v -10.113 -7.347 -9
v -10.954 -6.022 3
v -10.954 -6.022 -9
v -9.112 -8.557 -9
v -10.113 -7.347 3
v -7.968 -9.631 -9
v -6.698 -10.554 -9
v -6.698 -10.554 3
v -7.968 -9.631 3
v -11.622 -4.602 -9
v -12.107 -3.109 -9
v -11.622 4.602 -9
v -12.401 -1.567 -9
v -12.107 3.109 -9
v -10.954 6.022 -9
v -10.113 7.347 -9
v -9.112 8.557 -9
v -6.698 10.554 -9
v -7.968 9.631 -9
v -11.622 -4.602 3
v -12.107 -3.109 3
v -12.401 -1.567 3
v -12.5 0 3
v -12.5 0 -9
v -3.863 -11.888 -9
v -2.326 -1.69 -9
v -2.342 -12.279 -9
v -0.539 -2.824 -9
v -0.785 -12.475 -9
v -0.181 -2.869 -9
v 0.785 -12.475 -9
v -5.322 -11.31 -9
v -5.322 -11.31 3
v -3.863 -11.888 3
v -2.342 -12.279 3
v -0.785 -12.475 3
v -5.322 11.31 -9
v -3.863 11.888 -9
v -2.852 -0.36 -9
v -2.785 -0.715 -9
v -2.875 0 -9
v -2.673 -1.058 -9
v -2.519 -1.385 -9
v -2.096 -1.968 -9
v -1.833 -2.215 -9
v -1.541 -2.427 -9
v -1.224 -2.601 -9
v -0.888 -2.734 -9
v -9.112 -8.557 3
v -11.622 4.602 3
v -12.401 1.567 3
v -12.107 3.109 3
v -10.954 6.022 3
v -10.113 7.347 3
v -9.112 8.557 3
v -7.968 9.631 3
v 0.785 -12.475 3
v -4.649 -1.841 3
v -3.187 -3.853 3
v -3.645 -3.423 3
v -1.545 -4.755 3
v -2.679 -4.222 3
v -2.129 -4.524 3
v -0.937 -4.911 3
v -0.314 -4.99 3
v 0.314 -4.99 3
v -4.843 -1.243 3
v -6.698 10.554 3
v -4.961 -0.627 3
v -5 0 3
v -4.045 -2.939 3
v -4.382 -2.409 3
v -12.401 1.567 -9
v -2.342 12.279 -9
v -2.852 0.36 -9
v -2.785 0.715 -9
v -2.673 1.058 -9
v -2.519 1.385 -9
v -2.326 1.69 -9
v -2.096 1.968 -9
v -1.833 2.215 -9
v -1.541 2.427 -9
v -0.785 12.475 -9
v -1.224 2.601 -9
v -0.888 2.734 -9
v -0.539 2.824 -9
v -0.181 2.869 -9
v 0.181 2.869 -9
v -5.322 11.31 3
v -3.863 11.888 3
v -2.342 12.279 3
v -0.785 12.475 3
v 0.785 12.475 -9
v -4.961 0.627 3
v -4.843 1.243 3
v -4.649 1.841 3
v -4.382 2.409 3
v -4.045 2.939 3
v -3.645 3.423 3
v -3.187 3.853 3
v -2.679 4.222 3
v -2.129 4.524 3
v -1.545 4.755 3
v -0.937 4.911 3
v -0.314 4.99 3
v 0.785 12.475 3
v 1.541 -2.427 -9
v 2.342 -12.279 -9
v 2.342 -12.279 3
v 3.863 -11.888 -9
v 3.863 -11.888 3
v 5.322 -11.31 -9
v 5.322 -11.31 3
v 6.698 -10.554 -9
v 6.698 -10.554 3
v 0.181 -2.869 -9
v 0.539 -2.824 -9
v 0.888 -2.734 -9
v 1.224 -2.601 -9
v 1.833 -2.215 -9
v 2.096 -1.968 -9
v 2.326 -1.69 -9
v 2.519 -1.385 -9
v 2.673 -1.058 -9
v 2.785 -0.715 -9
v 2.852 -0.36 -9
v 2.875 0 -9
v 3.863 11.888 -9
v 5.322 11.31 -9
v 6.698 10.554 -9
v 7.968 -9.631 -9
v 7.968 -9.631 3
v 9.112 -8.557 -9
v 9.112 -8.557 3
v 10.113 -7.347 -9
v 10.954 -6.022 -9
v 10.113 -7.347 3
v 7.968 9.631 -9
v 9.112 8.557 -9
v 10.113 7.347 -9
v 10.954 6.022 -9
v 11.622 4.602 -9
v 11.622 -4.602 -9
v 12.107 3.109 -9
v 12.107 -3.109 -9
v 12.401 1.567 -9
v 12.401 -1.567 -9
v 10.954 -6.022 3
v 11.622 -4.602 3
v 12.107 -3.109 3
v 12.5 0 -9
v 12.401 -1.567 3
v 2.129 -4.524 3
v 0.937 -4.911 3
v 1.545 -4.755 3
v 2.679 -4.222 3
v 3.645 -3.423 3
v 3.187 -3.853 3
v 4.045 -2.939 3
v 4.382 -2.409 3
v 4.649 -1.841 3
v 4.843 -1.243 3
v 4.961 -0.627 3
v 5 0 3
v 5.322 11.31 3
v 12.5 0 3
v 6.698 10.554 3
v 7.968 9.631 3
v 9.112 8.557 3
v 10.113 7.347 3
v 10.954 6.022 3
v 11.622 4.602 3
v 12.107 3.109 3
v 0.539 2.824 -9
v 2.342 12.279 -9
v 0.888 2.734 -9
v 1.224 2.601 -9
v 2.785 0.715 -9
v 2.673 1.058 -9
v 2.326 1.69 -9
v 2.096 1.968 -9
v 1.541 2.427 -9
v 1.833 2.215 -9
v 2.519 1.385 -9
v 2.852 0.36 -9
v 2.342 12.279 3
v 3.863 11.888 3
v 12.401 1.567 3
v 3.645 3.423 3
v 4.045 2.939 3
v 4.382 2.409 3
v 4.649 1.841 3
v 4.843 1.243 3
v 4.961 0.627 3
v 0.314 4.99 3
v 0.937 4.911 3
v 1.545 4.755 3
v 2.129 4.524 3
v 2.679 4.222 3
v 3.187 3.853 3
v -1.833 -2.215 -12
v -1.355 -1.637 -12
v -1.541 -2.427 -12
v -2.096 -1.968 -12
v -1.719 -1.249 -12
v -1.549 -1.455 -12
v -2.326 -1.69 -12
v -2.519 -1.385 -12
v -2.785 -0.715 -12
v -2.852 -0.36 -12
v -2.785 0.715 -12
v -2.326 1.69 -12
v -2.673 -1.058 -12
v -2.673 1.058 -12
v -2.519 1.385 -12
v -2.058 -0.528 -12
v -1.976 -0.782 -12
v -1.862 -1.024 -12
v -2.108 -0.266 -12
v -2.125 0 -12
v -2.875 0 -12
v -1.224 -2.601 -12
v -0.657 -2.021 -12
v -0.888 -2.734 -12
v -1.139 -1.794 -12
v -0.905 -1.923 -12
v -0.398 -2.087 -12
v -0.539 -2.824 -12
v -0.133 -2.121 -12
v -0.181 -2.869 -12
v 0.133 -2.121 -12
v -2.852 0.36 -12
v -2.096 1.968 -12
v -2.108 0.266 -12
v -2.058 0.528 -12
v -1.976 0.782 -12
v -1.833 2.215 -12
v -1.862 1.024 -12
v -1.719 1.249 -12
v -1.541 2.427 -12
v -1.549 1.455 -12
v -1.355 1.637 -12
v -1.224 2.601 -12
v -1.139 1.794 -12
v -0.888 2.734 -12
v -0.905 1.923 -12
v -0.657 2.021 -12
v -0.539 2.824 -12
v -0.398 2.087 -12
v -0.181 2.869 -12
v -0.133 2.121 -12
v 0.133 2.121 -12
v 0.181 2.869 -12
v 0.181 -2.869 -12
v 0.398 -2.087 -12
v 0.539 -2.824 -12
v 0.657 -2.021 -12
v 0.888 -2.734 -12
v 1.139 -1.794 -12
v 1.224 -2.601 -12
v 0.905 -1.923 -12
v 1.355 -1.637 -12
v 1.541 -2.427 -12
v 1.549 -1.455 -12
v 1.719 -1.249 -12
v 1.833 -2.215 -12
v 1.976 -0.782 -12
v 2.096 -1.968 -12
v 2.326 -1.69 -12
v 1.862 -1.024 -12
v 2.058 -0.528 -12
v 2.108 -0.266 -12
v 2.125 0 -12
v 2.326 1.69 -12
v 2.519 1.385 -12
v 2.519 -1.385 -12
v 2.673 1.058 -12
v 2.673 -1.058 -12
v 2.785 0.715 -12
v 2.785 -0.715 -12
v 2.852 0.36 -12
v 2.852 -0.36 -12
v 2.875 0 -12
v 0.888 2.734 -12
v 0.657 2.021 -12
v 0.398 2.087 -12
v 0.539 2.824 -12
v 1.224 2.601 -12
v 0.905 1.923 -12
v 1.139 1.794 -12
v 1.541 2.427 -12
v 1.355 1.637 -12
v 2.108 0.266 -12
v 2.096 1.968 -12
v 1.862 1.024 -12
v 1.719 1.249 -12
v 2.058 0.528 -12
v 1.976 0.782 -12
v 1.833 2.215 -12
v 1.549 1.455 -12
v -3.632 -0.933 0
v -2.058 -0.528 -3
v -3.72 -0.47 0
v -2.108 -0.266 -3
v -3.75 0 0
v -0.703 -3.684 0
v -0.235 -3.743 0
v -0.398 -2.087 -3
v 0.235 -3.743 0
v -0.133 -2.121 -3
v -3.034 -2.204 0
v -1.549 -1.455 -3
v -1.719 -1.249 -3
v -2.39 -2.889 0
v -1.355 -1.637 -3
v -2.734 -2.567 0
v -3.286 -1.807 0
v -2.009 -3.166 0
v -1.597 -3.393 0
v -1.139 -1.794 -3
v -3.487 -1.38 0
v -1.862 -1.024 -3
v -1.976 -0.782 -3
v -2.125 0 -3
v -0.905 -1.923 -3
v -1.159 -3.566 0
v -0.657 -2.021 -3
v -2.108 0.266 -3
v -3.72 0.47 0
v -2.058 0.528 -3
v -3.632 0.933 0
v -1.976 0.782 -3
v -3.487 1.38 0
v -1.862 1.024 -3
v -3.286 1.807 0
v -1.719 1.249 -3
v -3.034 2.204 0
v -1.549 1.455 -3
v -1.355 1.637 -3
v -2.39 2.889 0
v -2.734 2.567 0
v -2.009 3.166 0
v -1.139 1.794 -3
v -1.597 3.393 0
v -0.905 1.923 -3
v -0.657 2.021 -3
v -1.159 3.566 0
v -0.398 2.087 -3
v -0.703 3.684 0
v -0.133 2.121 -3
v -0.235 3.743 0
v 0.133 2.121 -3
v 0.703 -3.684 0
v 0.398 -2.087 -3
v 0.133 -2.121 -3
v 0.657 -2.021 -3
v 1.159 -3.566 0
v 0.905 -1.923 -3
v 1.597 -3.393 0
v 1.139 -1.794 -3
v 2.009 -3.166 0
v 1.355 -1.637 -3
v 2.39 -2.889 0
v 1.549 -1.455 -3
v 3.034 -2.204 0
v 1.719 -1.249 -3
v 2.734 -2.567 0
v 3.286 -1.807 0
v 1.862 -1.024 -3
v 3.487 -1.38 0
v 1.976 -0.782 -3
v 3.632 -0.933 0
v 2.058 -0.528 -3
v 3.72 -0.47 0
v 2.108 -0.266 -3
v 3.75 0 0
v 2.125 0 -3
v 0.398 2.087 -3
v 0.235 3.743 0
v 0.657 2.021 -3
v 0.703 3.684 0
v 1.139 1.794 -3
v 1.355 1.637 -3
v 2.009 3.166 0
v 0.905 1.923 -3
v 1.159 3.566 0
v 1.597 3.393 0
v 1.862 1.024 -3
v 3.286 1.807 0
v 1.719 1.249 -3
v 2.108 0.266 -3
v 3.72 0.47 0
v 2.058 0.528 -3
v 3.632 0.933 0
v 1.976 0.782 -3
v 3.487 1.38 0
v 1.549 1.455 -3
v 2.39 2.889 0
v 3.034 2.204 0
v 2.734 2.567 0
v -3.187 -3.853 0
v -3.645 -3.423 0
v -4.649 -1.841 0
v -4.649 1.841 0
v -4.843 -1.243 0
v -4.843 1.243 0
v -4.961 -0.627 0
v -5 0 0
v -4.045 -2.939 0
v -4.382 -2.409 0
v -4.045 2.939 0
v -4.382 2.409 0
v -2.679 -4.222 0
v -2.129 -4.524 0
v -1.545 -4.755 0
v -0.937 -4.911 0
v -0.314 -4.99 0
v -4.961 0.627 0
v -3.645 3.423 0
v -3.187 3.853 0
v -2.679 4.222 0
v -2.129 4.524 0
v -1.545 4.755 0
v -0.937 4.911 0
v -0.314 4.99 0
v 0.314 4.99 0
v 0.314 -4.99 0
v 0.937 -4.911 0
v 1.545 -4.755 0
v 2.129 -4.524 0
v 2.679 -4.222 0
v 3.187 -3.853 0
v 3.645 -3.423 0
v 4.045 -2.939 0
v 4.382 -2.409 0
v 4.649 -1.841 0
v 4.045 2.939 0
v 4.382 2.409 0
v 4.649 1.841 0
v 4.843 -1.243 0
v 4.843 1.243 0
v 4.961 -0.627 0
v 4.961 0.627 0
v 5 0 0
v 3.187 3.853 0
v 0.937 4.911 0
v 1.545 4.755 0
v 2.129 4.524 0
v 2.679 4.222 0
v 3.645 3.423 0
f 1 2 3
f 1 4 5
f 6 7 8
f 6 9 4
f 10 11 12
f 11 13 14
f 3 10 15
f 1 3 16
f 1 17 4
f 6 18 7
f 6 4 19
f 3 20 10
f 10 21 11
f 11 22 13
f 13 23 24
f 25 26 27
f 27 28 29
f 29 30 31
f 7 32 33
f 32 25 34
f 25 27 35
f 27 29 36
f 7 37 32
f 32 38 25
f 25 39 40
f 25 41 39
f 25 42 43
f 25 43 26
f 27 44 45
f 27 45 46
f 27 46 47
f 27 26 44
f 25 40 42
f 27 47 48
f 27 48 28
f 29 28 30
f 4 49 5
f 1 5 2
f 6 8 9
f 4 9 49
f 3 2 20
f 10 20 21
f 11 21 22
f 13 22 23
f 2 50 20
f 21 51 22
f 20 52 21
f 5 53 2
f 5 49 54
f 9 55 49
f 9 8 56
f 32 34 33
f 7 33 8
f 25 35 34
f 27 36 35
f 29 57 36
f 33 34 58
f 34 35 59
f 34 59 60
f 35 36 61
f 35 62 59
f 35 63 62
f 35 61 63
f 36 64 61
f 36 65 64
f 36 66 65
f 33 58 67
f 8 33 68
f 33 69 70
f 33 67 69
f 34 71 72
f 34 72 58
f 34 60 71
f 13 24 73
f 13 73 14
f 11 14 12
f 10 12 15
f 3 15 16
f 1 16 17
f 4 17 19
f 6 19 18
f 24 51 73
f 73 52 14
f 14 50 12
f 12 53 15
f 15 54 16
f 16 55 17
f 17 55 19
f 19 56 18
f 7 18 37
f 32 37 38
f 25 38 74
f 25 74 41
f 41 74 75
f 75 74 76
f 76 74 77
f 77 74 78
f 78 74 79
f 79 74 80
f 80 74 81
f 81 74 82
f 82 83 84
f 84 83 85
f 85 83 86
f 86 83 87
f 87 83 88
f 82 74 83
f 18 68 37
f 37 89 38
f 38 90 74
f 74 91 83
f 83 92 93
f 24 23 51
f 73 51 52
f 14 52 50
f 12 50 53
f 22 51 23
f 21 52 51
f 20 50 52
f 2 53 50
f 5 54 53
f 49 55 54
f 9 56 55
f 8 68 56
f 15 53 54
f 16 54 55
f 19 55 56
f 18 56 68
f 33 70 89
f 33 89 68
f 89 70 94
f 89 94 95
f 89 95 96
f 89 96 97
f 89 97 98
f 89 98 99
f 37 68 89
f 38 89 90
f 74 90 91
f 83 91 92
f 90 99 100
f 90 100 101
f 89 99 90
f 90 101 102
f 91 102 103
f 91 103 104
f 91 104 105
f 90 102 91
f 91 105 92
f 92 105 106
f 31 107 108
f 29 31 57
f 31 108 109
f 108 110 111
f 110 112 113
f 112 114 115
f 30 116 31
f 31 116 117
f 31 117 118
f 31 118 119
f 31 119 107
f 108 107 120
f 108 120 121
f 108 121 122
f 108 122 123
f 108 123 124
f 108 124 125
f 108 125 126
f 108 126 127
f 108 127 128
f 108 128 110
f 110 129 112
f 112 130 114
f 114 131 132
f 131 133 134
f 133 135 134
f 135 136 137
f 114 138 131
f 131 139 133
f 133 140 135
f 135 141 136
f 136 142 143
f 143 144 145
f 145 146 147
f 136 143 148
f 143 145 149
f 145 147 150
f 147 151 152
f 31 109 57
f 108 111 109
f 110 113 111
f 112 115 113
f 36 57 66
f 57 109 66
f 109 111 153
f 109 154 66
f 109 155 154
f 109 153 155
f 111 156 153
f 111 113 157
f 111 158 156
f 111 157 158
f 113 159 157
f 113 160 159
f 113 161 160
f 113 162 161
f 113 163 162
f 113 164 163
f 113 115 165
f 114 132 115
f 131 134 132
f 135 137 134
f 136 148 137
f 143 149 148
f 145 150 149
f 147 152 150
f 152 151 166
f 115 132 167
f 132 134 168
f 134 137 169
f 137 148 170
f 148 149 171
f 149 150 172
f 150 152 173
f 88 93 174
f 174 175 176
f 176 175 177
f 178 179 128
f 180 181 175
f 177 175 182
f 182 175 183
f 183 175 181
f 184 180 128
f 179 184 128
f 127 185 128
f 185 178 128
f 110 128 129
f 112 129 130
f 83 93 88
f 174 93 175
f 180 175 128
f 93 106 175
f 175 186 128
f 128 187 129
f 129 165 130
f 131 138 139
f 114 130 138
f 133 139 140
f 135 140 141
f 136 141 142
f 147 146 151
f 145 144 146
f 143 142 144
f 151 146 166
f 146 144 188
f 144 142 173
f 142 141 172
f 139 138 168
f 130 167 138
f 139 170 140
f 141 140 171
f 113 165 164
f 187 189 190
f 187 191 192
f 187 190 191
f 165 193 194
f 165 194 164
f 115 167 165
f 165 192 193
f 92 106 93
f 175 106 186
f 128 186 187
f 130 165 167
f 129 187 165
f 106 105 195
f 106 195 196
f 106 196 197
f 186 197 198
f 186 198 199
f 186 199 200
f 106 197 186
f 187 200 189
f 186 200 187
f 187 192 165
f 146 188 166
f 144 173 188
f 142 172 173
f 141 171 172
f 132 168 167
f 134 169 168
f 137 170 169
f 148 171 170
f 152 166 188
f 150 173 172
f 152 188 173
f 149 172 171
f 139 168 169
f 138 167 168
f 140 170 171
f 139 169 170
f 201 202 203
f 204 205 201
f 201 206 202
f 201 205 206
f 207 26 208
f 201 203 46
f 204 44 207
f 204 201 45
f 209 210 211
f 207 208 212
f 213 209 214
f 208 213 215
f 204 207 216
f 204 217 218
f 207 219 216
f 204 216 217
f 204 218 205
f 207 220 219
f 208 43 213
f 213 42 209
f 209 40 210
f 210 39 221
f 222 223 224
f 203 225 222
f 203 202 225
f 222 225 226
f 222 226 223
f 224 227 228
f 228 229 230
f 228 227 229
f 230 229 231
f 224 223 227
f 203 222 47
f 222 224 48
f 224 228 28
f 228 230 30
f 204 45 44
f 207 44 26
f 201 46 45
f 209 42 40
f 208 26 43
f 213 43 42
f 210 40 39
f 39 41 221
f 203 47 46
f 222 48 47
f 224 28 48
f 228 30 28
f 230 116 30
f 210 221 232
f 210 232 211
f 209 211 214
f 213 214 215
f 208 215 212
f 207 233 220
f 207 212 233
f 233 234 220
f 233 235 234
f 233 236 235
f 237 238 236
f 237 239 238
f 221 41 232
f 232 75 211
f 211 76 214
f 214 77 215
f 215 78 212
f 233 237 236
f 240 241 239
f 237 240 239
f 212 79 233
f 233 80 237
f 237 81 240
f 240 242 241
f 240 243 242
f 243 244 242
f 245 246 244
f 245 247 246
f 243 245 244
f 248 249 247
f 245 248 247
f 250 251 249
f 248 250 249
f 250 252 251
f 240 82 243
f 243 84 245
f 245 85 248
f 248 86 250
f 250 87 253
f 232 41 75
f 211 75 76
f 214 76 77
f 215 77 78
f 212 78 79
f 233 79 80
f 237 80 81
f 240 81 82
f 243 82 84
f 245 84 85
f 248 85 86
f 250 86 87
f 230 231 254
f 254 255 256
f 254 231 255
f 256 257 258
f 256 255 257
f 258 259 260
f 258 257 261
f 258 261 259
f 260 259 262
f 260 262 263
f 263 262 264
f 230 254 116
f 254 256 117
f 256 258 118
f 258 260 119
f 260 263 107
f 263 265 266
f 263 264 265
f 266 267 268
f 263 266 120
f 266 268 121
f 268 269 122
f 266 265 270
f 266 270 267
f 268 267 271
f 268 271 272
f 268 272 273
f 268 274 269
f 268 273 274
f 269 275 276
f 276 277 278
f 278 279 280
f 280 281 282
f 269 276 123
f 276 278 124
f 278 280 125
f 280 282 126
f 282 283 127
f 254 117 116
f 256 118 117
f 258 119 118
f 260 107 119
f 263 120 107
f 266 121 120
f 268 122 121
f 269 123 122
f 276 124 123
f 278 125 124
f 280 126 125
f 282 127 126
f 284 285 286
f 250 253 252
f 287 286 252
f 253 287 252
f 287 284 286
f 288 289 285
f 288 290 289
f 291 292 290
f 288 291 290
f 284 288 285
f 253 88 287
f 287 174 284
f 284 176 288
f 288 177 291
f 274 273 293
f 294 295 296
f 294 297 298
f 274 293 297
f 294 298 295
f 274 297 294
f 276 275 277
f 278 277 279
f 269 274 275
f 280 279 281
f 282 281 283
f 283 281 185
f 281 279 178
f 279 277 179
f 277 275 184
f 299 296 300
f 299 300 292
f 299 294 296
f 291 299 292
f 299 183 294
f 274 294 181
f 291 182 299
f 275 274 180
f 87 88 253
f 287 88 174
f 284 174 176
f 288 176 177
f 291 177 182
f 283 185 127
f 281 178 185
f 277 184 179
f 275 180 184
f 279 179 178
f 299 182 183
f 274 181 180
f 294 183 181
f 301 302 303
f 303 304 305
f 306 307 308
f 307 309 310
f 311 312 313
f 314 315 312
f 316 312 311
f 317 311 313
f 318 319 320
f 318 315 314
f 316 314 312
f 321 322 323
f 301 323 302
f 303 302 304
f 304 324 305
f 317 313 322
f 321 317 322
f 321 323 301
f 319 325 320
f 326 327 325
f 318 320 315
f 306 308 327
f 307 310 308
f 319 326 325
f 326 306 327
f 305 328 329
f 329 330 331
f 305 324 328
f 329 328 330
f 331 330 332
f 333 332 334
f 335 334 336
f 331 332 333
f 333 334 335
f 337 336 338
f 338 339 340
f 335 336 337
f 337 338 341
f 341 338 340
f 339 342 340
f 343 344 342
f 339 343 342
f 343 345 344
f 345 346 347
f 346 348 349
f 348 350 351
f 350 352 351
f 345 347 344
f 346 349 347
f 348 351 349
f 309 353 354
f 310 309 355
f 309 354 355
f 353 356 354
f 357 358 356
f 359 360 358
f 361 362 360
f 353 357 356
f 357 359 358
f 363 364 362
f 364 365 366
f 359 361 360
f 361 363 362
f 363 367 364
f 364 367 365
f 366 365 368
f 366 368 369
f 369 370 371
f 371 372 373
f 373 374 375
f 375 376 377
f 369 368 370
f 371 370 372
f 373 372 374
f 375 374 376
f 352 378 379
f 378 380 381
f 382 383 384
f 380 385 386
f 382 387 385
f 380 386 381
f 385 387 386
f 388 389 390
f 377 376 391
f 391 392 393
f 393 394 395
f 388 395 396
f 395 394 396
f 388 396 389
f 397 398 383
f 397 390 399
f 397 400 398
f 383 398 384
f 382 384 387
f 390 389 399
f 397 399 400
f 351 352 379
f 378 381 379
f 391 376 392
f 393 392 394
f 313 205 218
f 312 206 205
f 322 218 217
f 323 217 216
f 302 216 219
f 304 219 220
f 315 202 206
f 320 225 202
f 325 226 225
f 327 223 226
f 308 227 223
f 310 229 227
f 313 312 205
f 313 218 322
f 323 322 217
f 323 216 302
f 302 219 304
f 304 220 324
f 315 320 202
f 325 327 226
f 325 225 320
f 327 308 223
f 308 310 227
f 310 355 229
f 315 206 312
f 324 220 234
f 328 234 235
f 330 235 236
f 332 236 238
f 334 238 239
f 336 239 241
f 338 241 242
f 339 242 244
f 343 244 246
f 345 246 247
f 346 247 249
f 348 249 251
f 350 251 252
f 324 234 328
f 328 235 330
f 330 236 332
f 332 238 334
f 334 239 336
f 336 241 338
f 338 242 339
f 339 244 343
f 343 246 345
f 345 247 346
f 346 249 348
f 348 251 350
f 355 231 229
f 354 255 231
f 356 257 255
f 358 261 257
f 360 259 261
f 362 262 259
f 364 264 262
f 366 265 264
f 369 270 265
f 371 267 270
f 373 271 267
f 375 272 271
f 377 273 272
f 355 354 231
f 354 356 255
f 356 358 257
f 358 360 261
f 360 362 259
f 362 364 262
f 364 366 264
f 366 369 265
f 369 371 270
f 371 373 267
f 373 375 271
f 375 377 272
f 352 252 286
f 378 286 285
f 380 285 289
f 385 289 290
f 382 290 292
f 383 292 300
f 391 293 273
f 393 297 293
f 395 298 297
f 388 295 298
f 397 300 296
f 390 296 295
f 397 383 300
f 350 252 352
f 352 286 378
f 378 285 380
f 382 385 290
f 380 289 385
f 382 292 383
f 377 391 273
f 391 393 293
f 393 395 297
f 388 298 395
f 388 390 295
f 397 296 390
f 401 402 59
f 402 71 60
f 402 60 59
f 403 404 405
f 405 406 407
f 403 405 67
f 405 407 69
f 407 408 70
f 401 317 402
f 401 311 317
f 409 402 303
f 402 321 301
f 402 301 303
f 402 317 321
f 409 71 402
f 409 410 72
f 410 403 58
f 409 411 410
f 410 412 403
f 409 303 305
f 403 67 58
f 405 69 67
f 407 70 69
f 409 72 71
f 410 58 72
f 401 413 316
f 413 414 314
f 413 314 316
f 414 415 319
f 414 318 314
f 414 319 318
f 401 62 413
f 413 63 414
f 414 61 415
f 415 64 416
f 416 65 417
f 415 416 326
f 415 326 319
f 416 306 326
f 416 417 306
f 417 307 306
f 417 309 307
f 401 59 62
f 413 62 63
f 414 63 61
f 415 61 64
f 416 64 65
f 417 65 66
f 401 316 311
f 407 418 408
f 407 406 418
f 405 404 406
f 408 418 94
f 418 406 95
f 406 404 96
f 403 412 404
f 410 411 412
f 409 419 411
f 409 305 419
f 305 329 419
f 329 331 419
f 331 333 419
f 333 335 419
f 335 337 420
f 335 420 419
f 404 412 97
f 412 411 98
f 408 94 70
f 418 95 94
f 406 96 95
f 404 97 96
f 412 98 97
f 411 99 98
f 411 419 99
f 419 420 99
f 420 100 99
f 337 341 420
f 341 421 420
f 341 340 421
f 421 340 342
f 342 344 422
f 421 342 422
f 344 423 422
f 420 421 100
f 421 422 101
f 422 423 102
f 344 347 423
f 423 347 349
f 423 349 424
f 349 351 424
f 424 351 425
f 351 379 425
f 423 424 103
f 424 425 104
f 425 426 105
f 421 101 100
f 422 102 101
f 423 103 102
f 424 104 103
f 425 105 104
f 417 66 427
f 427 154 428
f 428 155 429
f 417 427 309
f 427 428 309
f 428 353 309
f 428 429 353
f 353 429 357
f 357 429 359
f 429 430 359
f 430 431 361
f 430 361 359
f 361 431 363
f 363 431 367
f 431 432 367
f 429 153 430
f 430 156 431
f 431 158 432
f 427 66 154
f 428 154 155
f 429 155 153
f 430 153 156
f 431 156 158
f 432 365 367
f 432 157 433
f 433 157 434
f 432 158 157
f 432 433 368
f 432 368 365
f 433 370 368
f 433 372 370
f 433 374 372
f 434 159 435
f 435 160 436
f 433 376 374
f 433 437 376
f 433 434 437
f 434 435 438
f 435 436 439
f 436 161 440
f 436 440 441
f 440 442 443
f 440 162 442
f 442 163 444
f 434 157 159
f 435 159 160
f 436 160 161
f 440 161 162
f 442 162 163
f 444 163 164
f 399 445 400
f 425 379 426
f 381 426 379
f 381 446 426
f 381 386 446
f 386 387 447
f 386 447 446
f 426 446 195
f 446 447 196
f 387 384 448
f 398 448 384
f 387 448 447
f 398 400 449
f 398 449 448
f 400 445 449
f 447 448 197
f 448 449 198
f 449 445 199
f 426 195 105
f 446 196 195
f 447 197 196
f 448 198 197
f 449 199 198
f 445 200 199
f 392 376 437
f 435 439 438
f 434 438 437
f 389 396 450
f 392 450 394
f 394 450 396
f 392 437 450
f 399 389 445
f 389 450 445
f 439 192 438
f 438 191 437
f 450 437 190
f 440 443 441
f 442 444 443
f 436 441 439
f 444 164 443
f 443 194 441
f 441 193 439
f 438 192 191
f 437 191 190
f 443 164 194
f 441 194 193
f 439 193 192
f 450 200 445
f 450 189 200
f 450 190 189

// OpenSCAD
$fn = 50;

difference() {
	union() {
		translate(v = [0, 0, -9.0]) {
			cylinder(h = 12, r = 12.5);
		}
		#translate(v = [0, 0, -12.0]) {
			cylinder(h = 12, r = 2.875);
		}
	}
	union() {
		translate(v = [0, 0, 0]) {
			rotate(a = [0, 0, 0]) {
				difference() {
					union() {
						translate(v = [0, 0, -12.0]) {
							cylinder(h = 12, r = 2.0);
						}
						translate(v = [0, 0, -3]) {
							cylinder(h = 3, r1 = 2.125, r2 = 3.75);
						}
						translate(v = [0, 0, -12.0]) {
							cylinder(h = 12, r = 2.125);
						}
						translate(v = [0, 0, -12.0]) {
							cylinder(h = 12, r = 2.0);
						}
					}
					union();
				}
			}
		}
		#cylinder(h = 3, r = 5.0);
	}
}
